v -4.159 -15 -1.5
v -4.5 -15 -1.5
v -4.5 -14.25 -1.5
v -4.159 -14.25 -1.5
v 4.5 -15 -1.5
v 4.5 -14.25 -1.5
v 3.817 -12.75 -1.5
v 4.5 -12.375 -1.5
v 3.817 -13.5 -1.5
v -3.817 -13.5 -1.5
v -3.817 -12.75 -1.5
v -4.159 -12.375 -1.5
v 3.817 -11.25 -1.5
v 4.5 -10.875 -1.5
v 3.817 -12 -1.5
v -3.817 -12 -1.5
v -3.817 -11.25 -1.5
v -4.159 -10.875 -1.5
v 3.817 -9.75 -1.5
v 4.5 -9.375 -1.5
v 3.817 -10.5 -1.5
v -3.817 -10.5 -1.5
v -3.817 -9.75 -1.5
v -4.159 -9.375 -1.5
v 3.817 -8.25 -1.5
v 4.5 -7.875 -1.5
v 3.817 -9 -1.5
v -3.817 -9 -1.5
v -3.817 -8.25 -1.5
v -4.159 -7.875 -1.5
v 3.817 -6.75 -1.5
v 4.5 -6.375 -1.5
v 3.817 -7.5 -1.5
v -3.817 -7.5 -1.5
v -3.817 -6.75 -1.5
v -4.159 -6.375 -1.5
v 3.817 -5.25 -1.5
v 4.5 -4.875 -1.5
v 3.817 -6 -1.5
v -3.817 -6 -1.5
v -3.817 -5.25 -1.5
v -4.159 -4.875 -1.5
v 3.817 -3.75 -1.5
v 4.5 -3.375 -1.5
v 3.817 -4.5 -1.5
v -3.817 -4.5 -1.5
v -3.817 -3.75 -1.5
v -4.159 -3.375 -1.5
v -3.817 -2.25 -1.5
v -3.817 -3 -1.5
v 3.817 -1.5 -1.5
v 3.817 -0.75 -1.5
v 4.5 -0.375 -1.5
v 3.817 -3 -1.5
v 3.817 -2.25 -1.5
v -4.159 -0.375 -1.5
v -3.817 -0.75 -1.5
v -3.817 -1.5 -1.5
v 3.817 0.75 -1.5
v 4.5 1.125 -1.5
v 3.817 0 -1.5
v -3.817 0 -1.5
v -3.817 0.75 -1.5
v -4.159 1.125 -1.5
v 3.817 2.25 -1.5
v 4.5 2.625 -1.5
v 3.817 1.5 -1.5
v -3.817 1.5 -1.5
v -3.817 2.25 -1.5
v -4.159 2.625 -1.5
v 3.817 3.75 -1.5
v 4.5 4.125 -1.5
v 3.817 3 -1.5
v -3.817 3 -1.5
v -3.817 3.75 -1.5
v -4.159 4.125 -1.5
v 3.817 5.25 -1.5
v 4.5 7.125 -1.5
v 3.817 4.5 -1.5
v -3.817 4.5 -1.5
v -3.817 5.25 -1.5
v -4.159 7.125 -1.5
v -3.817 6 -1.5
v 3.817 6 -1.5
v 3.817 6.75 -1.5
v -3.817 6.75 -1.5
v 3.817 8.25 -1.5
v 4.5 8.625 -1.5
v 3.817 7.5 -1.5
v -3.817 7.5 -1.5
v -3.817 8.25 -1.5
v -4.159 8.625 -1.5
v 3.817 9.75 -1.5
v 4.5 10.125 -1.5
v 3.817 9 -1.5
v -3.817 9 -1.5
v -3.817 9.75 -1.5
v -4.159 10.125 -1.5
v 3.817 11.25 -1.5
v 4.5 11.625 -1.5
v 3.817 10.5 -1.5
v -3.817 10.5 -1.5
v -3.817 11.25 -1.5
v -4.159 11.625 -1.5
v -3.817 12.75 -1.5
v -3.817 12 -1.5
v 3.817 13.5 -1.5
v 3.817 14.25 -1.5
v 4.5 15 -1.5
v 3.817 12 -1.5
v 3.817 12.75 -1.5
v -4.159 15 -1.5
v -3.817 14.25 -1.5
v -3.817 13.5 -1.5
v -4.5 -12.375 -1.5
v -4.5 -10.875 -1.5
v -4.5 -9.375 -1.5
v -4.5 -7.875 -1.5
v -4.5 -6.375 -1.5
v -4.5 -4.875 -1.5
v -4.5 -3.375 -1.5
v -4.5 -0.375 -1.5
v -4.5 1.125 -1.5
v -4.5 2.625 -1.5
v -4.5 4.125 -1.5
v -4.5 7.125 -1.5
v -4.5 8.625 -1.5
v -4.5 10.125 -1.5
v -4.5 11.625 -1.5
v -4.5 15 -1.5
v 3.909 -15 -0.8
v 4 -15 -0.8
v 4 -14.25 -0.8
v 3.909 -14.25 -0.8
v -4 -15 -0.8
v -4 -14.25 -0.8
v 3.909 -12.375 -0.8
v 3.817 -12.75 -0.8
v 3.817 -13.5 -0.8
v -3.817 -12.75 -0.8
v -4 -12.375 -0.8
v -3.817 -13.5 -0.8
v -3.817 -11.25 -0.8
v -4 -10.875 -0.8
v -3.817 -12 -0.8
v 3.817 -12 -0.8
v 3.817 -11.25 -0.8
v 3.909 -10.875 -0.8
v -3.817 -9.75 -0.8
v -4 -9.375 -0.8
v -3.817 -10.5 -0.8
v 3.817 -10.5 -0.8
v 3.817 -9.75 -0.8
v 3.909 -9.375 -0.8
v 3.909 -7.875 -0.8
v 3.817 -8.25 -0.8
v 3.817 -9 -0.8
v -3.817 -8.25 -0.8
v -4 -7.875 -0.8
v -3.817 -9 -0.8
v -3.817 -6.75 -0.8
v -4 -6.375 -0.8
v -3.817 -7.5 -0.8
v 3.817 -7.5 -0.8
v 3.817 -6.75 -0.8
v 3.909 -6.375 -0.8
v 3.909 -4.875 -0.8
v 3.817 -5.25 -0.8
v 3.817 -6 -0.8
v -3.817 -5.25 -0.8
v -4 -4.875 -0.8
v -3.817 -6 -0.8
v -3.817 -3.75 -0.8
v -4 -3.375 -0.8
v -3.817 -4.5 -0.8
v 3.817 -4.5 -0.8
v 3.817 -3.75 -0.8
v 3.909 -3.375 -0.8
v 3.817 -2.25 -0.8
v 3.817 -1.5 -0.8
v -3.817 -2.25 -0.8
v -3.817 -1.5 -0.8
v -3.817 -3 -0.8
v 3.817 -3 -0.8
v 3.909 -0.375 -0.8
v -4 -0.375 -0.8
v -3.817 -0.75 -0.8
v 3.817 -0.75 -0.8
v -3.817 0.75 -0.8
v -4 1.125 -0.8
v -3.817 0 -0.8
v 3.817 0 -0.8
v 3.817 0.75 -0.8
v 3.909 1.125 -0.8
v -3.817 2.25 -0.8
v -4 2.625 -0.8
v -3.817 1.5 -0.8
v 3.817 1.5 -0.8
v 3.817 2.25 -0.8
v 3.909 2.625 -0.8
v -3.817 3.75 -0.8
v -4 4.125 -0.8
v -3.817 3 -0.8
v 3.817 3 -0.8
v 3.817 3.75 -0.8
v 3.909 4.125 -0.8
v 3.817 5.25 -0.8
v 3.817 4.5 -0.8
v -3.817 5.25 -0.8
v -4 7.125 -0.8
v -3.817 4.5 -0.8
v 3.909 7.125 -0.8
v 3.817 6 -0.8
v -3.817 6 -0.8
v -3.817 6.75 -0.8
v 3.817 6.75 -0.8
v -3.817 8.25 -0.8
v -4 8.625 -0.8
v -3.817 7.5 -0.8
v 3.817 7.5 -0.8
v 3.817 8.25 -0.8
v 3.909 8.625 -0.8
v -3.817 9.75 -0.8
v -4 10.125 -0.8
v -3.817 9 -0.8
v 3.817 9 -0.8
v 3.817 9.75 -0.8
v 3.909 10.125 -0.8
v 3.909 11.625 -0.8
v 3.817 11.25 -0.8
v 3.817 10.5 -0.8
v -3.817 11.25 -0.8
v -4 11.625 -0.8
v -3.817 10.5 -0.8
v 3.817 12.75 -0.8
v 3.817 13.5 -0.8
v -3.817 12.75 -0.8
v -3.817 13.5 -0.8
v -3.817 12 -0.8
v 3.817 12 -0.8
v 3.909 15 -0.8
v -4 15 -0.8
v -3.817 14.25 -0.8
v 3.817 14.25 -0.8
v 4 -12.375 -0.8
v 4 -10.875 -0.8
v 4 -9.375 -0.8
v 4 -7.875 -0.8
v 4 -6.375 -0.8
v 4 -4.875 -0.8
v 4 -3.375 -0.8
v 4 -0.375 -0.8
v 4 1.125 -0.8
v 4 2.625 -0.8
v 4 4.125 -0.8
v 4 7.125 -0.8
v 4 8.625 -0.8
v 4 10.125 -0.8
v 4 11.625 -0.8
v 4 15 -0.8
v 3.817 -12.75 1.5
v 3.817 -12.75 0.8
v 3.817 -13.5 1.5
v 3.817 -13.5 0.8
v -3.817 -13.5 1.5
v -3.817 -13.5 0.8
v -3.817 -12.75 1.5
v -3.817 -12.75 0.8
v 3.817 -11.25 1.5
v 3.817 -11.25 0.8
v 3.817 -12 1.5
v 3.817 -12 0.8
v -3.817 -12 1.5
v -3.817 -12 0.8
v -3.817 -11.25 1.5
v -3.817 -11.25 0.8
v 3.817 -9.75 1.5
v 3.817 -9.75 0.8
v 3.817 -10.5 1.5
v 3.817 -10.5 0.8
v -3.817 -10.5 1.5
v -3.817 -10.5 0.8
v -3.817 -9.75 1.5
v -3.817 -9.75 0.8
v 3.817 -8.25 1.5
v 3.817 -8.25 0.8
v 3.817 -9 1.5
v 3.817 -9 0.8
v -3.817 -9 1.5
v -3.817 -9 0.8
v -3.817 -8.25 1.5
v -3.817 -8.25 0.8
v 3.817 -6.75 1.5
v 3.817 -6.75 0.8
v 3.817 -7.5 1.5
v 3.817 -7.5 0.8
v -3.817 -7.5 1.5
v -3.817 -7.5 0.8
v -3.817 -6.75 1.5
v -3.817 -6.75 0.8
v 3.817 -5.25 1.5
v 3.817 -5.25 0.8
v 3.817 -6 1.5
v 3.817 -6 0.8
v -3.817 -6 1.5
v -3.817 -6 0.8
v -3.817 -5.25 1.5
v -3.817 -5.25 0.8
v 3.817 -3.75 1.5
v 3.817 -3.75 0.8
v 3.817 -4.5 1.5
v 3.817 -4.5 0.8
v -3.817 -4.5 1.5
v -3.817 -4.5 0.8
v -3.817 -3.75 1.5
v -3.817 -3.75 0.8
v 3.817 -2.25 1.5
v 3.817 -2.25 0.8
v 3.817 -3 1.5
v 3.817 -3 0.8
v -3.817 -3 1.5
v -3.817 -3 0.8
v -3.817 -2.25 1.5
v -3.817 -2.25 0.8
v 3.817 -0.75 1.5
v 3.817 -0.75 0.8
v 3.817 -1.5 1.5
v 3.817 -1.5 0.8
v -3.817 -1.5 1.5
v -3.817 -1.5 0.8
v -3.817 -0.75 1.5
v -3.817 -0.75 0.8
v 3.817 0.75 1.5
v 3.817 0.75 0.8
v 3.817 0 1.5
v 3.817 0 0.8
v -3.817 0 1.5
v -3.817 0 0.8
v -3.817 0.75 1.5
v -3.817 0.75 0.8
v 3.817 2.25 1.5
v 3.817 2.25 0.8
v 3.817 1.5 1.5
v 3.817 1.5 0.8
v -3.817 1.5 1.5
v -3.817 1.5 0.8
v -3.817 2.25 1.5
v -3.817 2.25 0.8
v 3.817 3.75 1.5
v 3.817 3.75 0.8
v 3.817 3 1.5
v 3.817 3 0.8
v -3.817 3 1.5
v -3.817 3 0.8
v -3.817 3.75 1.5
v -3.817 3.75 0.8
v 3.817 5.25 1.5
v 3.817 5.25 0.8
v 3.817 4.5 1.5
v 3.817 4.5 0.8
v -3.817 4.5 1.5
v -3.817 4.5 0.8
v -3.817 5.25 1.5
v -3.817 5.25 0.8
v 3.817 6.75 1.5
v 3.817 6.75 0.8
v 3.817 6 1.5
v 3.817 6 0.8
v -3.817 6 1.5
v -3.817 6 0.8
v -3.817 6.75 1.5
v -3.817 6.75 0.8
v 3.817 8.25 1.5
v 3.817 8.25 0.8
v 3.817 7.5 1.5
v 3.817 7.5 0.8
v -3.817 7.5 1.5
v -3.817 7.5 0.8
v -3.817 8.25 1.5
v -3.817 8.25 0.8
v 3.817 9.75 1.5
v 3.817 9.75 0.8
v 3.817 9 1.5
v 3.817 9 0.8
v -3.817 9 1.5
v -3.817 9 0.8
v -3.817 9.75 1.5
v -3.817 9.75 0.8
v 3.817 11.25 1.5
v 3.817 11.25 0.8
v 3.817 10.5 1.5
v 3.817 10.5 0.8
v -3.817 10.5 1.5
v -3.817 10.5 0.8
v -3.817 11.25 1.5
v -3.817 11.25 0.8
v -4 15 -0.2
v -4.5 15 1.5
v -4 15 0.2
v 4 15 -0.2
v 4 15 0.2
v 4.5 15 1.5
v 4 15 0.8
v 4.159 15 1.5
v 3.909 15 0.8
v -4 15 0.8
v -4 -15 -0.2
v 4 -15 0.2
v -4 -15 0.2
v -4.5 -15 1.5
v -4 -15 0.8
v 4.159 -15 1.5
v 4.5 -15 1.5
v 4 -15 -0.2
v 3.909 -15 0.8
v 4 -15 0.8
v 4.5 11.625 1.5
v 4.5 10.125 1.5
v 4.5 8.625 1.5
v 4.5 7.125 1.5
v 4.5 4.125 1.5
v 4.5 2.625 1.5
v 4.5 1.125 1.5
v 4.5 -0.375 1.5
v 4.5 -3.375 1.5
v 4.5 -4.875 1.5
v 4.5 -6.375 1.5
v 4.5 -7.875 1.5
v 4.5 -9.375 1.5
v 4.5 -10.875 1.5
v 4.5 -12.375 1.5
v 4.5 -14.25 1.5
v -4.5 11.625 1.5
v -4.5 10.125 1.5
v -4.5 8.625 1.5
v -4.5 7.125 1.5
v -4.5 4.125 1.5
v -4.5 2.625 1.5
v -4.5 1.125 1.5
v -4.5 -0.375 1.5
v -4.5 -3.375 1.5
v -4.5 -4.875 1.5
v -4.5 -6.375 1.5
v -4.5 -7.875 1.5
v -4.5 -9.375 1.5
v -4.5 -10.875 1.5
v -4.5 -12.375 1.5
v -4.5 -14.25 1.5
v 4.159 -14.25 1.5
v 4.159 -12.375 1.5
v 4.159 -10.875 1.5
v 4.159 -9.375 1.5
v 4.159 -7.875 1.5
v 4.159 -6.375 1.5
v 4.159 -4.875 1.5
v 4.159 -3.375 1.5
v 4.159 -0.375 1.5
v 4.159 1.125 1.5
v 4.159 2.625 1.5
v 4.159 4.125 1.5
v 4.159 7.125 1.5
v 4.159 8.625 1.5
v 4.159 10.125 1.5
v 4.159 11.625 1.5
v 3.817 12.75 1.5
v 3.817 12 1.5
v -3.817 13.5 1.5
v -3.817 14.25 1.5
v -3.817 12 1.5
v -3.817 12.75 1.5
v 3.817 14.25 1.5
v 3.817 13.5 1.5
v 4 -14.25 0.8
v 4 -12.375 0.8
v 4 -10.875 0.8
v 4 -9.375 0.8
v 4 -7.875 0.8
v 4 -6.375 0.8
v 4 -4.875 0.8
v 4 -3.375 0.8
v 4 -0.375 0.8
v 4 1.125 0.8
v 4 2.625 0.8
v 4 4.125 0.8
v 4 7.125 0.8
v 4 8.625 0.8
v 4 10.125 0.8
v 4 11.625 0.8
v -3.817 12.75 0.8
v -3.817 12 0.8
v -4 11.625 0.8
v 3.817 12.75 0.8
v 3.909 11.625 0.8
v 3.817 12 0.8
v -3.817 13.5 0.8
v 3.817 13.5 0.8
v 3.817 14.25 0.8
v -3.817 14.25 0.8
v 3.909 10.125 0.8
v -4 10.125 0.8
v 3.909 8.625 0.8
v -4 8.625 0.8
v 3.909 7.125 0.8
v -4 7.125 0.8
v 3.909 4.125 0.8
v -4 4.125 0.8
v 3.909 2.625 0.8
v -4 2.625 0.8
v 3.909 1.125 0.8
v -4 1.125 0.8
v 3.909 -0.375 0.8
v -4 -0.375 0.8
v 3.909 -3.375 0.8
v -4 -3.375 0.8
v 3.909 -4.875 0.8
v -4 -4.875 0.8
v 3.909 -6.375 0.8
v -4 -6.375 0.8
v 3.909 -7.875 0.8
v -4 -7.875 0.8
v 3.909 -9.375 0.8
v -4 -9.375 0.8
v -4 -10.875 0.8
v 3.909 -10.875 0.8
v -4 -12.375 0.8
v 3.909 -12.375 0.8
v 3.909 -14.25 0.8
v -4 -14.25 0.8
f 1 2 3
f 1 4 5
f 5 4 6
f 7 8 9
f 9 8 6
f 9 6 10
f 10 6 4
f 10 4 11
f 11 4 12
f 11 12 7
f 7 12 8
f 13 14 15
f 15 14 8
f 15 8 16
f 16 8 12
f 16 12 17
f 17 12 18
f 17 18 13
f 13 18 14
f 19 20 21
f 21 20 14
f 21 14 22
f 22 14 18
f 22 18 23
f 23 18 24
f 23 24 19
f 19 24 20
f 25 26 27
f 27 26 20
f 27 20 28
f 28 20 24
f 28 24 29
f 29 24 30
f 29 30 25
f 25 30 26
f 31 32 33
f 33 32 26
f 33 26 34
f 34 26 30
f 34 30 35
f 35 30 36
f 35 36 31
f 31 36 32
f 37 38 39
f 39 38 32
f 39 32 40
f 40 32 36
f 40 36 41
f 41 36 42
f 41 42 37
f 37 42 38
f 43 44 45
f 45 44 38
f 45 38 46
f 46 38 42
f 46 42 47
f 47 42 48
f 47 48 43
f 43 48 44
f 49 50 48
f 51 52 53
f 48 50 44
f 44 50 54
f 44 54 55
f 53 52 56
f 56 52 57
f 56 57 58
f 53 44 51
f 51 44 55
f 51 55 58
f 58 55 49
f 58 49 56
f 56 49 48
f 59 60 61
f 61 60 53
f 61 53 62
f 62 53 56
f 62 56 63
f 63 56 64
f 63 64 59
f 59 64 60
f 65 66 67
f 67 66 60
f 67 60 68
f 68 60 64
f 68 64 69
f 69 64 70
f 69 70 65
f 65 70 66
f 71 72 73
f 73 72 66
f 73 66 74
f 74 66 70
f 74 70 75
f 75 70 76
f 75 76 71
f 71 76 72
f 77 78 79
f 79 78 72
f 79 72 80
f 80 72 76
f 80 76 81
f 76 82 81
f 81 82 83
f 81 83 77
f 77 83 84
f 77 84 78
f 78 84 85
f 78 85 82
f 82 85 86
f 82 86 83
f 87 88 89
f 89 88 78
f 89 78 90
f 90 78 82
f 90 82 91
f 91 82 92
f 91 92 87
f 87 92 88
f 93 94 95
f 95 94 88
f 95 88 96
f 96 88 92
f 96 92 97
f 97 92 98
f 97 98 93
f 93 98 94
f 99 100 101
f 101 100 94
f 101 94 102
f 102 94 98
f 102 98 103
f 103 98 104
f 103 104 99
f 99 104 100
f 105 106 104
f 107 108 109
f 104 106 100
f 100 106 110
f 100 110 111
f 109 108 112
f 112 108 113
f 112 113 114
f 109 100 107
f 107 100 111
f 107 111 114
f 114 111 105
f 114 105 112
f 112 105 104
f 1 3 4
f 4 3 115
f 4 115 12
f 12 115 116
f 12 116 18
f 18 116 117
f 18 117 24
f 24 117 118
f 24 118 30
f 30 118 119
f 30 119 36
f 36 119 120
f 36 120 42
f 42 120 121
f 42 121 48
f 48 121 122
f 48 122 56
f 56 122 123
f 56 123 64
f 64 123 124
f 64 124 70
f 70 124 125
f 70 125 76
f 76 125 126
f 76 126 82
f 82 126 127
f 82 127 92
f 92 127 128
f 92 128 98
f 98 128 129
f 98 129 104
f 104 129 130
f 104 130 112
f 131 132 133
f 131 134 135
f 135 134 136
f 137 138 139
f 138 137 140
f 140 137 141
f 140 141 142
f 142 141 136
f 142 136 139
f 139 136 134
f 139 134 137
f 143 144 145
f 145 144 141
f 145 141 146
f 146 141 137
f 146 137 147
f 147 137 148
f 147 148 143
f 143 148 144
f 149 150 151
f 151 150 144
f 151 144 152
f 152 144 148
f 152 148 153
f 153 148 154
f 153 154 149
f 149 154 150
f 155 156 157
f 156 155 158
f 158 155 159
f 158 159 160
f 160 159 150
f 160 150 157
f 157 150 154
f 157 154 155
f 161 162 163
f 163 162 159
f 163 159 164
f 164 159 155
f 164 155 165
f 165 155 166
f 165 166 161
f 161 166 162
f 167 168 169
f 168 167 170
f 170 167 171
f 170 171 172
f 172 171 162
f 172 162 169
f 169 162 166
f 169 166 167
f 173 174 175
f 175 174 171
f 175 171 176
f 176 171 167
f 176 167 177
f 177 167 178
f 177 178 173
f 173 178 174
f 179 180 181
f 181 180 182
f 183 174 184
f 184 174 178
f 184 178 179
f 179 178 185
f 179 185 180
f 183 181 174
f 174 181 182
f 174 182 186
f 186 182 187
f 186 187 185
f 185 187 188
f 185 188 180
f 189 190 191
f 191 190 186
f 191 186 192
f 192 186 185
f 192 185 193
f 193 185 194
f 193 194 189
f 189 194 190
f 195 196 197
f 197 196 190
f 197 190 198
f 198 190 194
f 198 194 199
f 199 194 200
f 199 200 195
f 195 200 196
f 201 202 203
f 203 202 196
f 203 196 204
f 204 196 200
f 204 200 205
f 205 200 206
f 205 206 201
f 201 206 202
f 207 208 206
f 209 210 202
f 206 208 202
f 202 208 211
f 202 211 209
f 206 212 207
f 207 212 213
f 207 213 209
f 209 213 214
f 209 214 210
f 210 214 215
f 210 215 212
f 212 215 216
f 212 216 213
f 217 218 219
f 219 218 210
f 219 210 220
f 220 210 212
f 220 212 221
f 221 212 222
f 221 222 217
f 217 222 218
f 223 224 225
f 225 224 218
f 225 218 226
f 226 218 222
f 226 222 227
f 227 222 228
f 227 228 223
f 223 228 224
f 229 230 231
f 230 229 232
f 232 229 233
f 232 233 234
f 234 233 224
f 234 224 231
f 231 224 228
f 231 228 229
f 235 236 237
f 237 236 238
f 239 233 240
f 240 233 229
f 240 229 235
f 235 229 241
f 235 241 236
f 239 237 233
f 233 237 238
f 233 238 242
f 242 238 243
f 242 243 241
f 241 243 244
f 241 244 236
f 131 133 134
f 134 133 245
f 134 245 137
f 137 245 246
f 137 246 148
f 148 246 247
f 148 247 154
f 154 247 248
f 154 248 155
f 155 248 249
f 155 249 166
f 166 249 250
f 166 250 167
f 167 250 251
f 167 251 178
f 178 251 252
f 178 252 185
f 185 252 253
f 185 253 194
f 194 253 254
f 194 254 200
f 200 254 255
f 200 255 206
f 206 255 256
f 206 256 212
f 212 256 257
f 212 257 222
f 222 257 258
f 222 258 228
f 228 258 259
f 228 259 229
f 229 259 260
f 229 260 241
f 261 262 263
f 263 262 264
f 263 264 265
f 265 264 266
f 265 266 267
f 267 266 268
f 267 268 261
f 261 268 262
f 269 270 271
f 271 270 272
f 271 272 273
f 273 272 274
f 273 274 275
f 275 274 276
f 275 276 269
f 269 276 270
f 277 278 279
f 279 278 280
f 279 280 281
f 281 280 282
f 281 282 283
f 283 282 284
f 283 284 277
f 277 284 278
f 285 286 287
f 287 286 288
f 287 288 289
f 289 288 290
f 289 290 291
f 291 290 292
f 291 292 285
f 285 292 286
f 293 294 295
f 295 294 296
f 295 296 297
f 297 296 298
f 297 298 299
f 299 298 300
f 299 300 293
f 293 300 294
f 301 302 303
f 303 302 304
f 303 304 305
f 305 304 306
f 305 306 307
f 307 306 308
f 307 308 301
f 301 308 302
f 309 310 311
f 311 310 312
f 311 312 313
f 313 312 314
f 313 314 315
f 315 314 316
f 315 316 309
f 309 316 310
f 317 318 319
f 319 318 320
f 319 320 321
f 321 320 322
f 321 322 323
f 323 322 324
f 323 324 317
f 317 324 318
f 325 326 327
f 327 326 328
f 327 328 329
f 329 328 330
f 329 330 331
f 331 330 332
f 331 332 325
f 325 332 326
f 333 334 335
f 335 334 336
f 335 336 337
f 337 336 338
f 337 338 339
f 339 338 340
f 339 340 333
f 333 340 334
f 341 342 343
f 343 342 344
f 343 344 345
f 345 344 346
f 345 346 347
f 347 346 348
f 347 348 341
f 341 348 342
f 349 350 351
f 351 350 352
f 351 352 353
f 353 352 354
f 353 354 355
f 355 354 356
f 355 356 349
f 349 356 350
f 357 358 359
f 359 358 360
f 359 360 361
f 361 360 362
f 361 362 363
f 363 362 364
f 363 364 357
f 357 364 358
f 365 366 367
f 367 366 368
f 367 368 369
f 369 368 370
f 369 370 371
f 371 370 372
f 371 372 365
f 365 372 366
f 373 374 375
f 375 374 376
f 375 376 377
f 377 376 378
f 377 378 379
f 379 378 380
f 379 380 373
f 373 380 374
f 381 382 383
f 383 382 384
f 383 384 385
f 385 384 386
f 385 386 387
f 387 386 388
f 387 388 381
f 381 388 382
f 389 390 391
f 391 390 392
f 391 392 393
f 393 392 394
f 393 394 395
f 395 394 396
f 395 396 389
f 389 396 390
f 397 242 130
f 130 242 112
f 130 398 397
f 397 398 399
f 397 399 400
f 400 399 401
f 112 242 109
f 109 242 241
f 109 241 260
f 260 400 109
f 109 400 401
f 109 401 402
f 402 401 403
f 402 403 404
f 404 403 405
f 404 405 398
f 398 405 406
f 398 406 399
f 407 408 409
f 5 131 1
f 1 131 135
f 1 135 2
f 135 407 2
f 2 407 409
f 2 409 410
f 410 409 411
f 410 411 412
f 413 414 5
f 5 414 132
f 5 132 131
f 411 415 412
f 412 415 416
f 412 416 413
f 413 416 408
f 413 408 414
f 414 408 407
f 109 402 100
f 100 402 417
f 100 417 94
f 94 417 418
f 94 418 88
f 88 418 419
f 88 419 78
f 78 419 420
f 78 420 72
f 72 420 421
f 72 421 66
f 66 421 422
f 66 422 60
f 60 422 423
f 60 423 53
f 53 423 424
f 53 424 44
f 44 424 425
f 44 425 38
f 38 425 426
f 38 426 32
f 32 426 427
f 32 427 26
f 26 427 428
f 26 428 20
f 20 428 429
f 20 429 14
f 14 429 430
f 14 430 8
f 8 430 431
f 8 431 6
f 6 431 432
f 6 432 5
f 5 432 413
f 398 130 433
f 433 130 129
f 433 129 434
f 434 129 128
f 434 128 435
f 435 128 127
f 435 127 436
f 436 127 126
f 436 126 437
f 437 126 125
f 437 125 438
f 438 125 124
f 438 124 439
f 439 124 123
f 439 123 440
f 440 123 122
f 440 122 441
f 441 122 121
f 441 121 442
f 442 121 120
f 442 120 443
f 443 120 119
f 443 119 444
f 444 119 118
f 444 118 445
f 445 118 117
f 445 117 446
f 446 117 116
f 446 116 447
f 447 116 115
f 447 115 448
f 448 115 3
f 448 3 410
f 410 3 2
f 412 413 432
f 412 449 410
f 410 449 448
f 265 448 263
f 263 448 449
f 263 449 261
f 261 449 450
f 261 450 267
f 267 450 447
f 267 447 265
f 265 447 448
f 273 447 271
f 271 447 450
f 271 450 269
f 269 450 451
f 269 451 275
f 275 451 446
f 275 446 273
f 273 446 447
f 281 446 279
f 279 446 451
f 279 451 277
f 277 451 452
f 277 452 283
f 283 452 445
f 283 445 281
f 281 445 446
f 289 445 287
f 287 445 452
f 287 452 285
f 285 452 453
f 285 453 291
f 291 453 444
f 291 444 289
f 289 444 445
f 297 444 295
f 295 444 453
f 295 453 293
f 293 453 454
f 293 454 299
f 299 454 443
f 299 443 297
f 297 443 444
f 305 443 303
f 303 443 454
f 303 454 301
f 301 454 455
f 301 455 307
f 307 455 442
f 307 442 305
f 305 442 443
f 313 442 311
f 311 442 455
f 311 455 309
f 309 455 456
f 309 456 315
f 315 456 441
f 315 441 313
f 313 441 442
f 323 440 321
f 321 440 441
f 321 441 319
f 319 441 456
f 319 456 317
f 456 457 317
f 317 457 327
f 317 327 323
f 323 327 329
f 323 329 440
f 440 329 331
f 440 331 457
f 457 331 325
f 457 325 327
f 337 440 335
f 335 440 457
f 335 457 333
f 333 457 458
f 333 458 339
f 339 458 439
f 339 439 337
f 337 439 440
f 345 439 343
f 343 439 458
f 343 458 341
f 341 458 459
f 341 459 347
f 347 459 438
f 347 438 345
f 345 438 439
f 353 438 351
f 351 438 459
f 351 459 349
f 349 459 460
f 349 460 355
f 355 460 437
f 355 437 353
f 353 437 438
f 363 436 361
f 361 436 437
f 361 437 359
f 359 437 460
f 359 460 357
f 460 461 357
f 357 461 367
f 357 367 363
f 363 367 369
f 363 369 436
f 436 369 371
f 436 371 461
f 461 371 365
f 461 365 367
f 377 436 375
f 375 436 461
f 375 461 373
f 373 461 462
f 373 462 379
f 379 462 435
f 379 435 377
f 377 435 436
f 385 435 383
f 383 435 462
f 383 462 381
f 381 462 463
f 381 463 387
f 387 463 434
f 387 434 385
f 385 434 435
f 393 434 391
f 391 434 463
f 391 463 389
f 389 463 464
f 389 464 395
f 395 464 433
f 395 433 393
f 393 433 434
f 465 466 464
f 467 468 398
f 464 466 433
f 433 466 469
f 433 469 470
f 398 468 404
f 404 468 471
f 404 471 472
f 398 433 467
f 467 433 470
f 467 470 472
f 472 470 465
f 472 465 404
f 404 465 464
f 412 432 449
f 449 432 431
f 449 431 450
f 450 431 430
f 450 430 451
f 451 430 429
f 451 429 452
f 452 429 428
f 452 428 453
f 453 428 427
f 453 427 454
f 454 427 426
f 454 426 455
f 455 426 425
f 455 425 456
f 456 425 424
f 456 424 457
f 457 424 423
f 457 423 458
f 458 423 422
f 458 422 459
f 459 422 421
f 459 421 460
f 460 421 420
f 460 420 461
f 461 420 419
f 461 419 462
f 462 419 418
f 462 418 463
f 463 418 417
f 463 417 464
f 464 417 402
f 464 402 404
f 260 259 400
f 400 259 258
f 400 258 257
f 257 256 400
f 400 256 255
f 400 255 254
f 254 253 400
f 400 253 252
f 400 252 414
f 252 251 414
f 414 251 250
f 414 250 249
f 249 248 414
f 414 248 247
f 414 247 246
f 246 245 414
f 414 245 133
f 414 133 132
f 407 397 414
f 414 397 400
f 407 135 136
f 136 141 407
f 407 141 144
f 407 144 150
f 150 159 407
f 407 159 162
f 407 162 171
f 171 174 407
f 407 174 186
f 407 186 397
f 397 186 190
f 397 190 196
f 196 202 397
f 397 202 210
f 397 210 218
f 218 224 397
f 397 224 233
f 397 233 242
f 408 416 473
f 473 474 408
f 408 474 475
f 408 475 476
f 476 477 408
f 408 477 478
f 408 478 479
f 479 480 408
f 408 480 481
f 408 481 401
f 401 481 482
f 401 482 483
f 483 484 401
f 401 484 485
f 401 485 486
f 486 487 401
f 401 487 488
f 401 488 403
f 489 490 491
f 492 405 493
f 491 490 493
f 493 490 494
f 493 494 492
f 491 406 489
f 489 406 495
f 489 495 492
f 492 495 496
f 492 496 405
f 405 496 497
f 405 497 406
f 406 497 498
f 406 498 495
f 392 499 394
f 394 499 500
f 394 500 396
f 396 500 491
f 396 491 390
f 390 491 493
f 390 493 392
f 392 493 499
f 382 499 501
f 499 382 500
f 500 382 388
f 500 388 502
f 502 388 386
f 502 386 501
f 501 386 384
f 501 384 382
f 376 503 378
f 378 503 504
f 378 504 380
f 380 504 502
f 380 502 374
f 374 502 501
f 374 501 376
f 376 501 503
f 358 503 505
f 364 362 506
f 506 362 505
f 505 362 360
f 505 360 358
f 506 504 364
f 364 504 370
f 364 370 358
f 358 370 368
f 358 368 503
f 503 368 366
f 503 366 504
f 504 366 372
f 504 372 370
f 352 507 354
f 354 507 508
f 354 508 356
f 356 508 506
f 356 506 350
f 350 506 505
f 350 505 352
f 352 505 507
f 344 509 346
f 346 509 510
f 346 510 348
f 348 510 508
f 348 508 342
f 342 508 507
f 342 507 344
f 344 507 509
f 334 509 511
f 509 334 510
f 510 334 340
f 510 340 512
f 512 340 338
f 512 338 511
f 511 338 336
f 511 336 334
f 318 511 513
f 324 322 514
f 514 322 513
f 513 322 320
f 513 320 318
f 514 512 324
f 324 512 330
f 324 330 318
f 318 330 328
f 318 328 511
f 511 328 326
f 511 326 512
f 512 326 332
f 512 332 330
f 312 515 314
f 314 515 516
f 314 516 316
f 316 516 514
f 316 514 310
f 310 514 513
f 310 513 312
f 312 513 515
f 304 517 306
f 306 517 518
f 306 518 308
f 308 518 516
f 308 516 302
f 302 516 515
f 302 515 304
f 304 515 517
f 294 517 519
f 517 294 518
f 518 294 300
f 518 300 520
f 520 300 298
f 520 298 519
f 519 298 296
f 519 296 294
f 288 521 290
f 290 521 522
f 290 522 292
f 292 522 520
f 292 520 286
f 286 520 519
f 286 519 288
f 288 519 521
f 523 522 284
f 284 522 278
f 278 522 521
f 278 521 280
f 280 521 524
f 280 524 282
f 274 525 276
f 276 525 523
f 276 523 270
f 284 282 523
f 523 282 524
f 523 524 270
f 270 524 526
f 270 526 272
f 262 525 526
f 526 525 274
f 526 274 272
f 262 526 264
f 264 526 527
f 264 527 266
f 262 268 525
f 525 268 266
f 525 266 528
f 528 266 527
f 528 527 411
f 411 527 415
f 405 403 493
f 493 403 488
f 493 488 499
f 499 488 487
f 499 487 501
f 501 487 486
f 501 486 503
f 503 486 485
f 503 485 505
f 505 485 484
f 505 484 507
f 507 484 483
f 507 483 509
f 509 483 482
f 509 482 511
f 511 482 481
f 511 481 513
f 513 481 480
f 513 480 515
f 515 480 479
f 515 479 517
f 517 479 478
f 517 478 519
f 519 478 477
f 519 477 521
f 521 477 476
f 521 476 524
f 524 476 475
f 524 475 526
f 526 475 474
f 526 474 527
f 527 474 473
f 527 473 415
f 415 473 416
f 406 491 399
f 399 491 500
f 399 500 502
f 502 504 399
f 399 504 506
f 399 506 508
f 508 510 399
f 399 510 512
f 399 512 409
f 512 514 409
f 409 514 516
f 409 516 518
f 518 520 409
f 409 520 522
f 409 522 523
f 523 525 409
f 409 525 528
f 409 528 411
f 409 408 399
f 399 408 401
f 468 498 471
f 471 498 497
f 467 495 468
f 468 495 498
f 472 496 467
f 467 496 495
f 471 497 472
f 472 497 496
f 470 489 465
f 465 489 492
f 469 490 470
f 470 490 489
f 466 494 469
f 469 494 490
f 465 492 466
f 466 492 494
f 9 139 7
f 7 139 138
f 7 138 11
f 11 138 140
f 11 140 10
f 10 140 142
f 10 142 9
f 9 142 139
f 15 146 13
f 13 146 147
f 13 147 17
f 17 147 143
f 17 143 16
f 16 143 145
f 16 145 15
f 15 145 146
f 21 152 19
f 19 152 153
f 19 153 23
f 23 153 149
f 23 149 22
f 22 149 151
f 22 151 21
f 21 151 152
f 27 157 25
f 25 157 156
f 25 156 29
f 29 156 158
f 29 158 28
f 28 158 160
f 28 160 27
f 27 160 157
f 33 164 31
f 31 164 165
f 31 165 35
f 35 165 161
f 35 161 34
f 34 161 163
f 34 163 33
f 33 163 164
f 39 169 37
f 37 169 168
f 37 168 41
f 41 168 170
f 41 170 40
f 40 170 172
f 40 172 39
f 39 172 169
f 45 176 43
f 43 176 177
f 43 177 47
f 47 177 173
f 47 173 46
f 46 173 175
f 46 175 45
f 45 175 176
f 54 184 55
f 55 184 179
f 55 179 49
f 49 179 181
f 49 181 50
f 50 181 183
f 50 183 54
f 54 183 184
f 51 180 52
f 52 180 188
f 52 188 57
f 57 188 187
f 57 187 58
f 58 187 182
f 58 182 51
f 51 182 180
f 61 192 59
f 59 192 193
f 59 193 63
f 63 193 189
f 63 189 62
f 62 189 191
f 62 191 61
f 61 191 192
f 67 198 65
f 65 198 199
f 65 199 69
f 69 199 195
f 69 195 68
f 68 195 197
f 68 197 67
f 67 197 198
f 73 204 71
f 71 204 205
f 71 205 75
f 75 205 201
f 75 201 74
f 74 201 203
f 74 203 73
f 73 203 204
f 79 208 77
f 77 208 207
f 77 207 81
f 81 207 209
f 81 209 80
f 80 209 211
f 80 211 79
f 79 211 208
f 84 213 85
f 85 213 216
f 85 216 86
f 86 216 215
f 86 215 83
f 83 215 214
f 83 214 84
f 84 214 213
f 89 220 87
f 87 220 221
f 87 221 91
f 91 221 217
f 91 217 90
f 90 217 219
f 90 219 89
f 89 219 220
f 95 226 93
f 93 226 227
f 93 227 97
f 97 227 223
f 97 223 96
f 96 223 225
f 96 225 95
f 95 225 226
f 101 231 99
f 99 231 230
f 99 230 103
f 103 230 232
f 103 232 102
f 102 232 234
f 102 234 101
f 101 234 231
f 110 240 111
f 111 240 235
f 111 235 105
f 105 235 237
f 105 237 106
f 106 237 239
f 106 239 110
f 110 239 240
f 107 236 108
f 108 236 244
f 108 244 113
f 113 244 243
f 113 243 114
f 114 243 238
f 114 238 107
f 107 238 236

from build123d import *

# Parameters (mm, degrees)
SKETCH1_W                = 9
SKETCH1_H                = 3
BOSS_EXTRUDE1_DEPTH      = 15
CUT_EXTRUDE1_START       = -31
SKETCH2_W                = 8
SKETCH2_H                = 0.6
CUT_EXTRUDE1_DEPTH       = 32
SKETCH3_W                = 7.634272068
SKETCH3_H                = 0.75
CUT_EXTRUDE2_DEPTH       = 0.7
LPATTERN1_COUNT          = 19
LPATTERN1_PITCH          = 1.5
MIRROR2_COPY_1_SKETCH_W  = 7.634272068
MIRROR2_COPY_1_SKETCH_H  = 0.75
MIRROR2_COPY_1_DEPTH     = 0.7
MIRROR2_COPY_2_SKETCH_W  = 7.634272068
MIRROR2_COPY_2_SKETCH_H  = 0.75
MIRROR2_COPY_2_DEPTH     = 0.7
MIRROR2_COPY_3_SKETCH_W  = 7.634272068
MIRROR2_COPY_3_SKETCH_H  = 0.75
MIRROR2_COPY_3_DEPTH     = 0.7
MIRROR2_COPY_4_SKETCH_W  = 7.634272068
MIRROR2_COPY_4_SKETCH_H  = 0.75
MIRROR2_COPY_4_DEPTH     = 0.7
MIRROR2_COPY_5_SKETCH_W  = 7.634272068
MIRROR2_COPY_5_SKETCH_H  = 0.75
MIRROR2_COPY_5_DEPTH     = 0.7
MIRROR2_COPY_6_SKETCH_W  = 7.634272068
MIRROR2_COPY_6_SKETCH_H  = 0.75
MIRROR2_COPY_6_DEPTH     = 0.7
MIRROR2_COPY_7_SKETCH_W  = 7.634272068
MIRROR2_COPY_7_SKETCH_H  = 0.75
MIRROR2_COPY_7_DEPTH     = 0.7
MIRROR2_COPY_8_SKETCH_W  = 7.634272068
MIRROR2_COPY_8_SKETCH_H  = 0.75
MIRROR2_COPY_8_DEPTH     = 0.7
MIRROR2_COPY_9_SKETCH_W  = 7.634272068
MIRROR2_COPY_9_SKETCH_H  = 0.75
MIRROR2_COPY_9_DEPTH     = 0.7
MIRROR2_COPY_10_SKETCH_W = 7.634272068
MIRROR2_COPY_10_SKETCH_H = 0.75
MIRROR2_COPY_10_DEPTH    = 0.7
MIRROR2_COPY_11_SKETCH_W = 7.634272068
MIRROR2_COPY_11_SKETCH_H = 0.75
MIRROR2_COPY_11_DEPTH    = 0.7
MIRROR2_COPY_12_SKETCH_W = 7.634272068
MIRROR2_COPY_12_SKETCH_H = 0.75
MIRROR2_COPY_12_DEPTH    = 0.7
MIRROR2_COPY_13_SKETCH_W = 7.634272068
MIRROR2_COPY_13_SKETCH_H = 0.75
MIRROR2_COPY_13_DEPTH    = 0.7
MIRROR2_COPY_14_SKETCH_W = 7.634272068
MIRROR2_COPY_14_SKETCH_H = 0.75
MIRROR2_COPY_14_DEPTH    = 0.7
MIRROR2_COPY_15_SKETCH_W = 7.634272068
MIRROR2_COPY_15_SKETCH_H = 0.75
MIRROR2_COPY_15_DEPTH    = 0.7
MIRROR2_COPY_16_SKETCH_W = 7.634272068
MIRROR2_COPY_16_SKETCH_H = 0.75
MIRROR2_COPY_16_DEPTH    = 0.7
MIRROR2_COPY_17_SKETCH_W = 7.634272068
MIRROR2_COPY_17_SKETCH_H = 0.75
MIRROR2_COPY_17_DEPTH    = 0.7
MIRROR2_COPY_18_SKETCH_W = 7.634272068
MIRROR2_COPY_18_SKETCH_H = 0.75
MIRROR2_COPY_18_DEPTH    = 0.7


with BuildPart() as part:
    # Sketch1 → Boss-Extrude1 (new body, symmetric)
    with BuildSketch(Plane(origin=(0, 0, 0), x_dir=(1, 0, 0), z_dir=(0, 1, 0))):
        Rectangle(SKETCH1_W, SKETCH1_H)
    extrude(amount=BOSS_EXTRUDE1_DEPTH, both=True)

    # Sketch2 → Cut-Extrude1 (cut)
    with BuildSketch(Plane(origin=(0, 15, 0), x_dir=(1, 0, 0), z_dir=(0, 1, 0)).offset(CUT_EXTRUDE1_START)):
        with Locations((0, 0.5)):
            Rectangle(SKETCH2_W, SKETCH2_H)
    cut_extrude1 = extrude(amount=CUT_EXTRUDE1_DEPTH, mode=Mode.SUBTRACT)

    # Mirror1: Cut-Extrude1 across plane
    add(cut_extrude1.mirror(Plane.XY), mode=Mode.SUBTRACT)

    # Sketch3 → Cut-Extrude2 (cut)
    with BuildSketch(Plane.XY.offset(1.5)):
        with Locations((0, 13.875)):
            Rectangle(SKETCH3_W, SKETCH3_H)
    cut_extrude2 = extrude(amount=-CUT_EXTRUDE2_DEPTH, mode=Mode.SUBTRACT)

    # LPattern1: Cut-Extrude2 ×19
    with Locations(*[(0, -i * LPATTERN1_PITCH, 0) for i in range(1, LPATTERN1_COUNT)]):
        add(cut_extrude2, mode=Mode.SUBTRACT)

    # Mirror2: Cut-Extrude2 across plane
    add(cut_extrude2.mirror(Plane.XY), mode=Mode.SUBTRACT)

    # Mirror2 copy 1 sketch → Mirror2 copy 1 (cut)
    with BuildSketch(Plane(origin=(0, -1.5, -1.5), x_dir=(1, 0, 0), z_dir=(0, 0, -1))):
        with Locations((0, -13.875)):
            Rectangle(MIRROR2_COPY_1_SKETCH_W, MIRROR2_COPY_1_SKETCH_H)
    extrude(amount=-MIRROR2_COPY_1_DEPTH, mode=Mode.SUBTRACT)

    # Mirror2 copy 2 sketch → Mirror2 copy 2 (cut)
    with BuildSketch(Plane(origin=(0, -3, -1.5), x_dir=(1, 0, 0), z_dir=(0, 0, -1))):
        with Locations((0, -13.875)):
            Rectangle(MIRROR2_COPY_2_SKETCH_W, MIRROR2_COPY_2_SKETCH_H)
    extrude(amount=-MIRROR2_COPY_2_DEPTH, mode=Mode.SUBTRACT)

    # Mirror2 copy 3 sketch → Mirror2 copy 3 (cut)
    with BuildSketch(Plane(origin=(0, -4.5, -1.5), x_dir=(1, 0, 0), z_dir=(0, 0, -1))):
        with Locations((0, -13.875)):
            Rectangle(MIRROR2_COPY_3_SKETCH_W, MIRROR2_COPY_3_SKETCH_H)
    extrude(amount=-MIRROR2_COPY_3_DEPTH, mode=Mode.SUBTRACT)

    # Mirror2 copy 4 sketch → Mirror2 copy 4 (cut)
    with BuildSketch(Plane(origin=(0, -6, -1.5), x_dir=(1, 0, 0), z_dir=(0, 0, -1))):
        with Locations((0, -13.875)):
            Rectangle(MIRROR2_COPY_4_SKETCH_W, MIRROR2_COPY_4_SKETCH_H)
    extrude(amount=-MIRROR2_COPY_4_DEPTH, mode=Mode.SUBTRACT)

    # Mirror2 copy 5 sketch → Mirror2 copy 5 (cut)
    with BuildSketch(Plane(origin=(0, -7.5, -1.5), x_dir=(1, 0, 0), z_dir=(0, 0, -1))):
        with Locations((0, -13.875)):
            Rectangle(MIRROR2_COPY_5_SKETCH_W, MIRROR2_COPY_5_SKETCH_H)
    extrude(amount=-MIRROR2_COPY_5_DEPTH, mode=Mode.SUBTRACT)

    # Mirror2 copy 6 sketch → Mirror2 copy 6 (cut)
    with BuildSketch(Plane(origin=(0, -9, -1.5), x_dir=(1, 0, 0), z_dir=(0, 0, -1))):
        with Locations((0, -13.875)):
            Rectangle(MIRROR2_COPY_6_SKETCH_W, MIRROR2_COPY_6_SKETCH_H)
    extrude(amount=-MIRROR2_COPY_6_DEPTH, mode=Mode.SUBTRACT)

    # Mirror2 copy 7 sketch → Mirror2 copy 7 (cut)
    with BuildSketch(Plane(origin=(0, -10.5, -1.5), x_dir=(1, 0, 0), z_dir=(0, 0, -1))):
        with Locations((0, -13.875)):
            Rectangle(MIRROR2_COPY_7_SKETCH_W, MIRROR2_COPY_7_SKETCH_H)
    extrude(amount=-MIRROR2_COPY_7_DEPTH, mode=Mode.SUBTRACT)

    # Mirror2 copy 8 sketch → Mirror2 copy 8 (cut)
    with BuildSketch(Plane(origin=(0, -12, -1.5), x_dir=(1, 0, 0), z_dir=(0, 0, -1))):
        with Locations((0, -13.875)):
            Rectangle(MIRROR2_COPY_8_SKETCH_W, MIRROR2_COPY_8_SKETCH_H)
    extrude(amount=-MIRROR2_COPY_8_DEPTH, mode=Mode.SUBTRACT)

    # Mirror2 copy 9 sketch → Mirror2 copy 9 (cut)
    with BuildSketch(Plane(origin=(0, -13.5, -1.5), x_dir=(1, 0, 0), z_dir=(0, 0, -1))):
        with Locations((0, -13.875)):
            Rectangle(MIRROR2_COPY_9_SKETCH_W, MIRROR2_COPY_9_SKETCH_H)
    extrude(amount=-MIRROR2_COPY_9_DEPTH, mode=Mode.SUBTRACT)

    # Mirror2 copy 10 sketch → Mirror2 copy 10 (cut)
    with BuildSketch(Plane(origin=(0, -15, -1.5), x_dir=(1, 0, 0), z_dir=(0, 0, -1))):
        with Locations((0, -13.875)):
            Rectangle(MIRROR2_COPY_10_SKETCH_W, MIRROR2_COPY_10_SKETCH_H)
    extrude(amount=-MIRROR2_COPY_10_DEPTH, mode=Mode.SUBTRACT)

    # Mirror2 copy 11 sketch → Mirror2 copy 11 (cut)
    with BuildSketch(Plane(origin=(0, -16.5, -1.5), x_dir=(1, 0, 0), z_dir=(0, 0, -1))):
        with Locations((0, -13.875)):
            Rectangle(MIRROR2_COPY_11_SKETCH_W, MIRROR2_COPY_11_SKETCH_H)
    extrude(amount=-MIRROR2_COPY_11_DEPTH, mode=Mode.SUBTRACT)

    # Mirror2 copy 12 sketch → Mirror2 copy 12 (cut)
    with BuildSketch(Plane(origin=(0, -18, -1.5), x_dir=(1, 0, 0), z_dir=(0, 0, -1))):
        with Locations((0, -13.875)):
            Rectangle(MIRROR2_COPY_12_SKETCH_W, MIRROR2_COPY_12_SKETCH_H)
    extrude(amount=-MIRROR2_COPY_12_DEPTH, mode=Mode.SUBTRACT)

    # Mirror2 copy 13 sketch → Mirror2 copy 13 (cut)
    with BuildSketch(Plane(origin=(0, -19.5, -1.5), x_dir=(1, 0, 0), z_dir=(0, 0, -1))):
        with Locations((0, -13.875)):
            Rectangle(MIRROR2_COPY_13_SKETCH_W, MIRROR2_COPY_13_SKETCH_H)
    extrude(amount=-MIRROR2_COPY_13_DEPTH, mode=Mode.SUBTRACT)

    # Mirror2 copy 14 sketch → Mirror2 copy 14 (cut)
    with BuildSketch(Plane(origin=(0, -21, -1.5), x_dir=(1, 0, 0), z_dir=(0, 0, -1))):
        with Locations((0, -13.875)):
            Rectangle(MIRROR2_COPY_14_SKETCH_W, MIRROR2_COPY_14_SKETCH_H)
    extrude(amount=-MIRROR2_COPY_14_DEPTH, mode=Mode.SUBTRACT)

    # Mirror2 copy 15 sketch → Mirror2 copy 15 (cut)
    with BuildSketch(Plane(origin=(0, -22.5, -1.5), x_dir=(1, 0, 0), z_dir=(0, 0, -1))):
        with Locations((0, -13.875)):
            Rectangle(MIRROR2_COPY_15_SKETCH_W, MIRROR2_COPY_15_SKETCH_H)
    extrude(amount=-MIRROR2_COPY_15_DEPTH, mode=Mode.SUBTRACT)

    # Mirror2 copy 16 sketch → Mirror2 copy 16 (cut)
    with BuildSketch(Plane(origin=(0, -24, -1.5), x_dir=(1, 0, 0), z_dir=(0, 0, -1))):
        with Locations((0, -13.875)):
            Rectangle(MIRROR2_COPY_16_SKETCH_W, MIRROR2_COPY_16_SKETCH_H)
    extrude(amount=-MIRROR2_COPY_16_DEPTH, mode=Mode.SUBTRACT)

    # Mirror2 copy 17 sketch → Mirror2 copy 17 (cut)
    with BuildSketch(Plane(origin=(0, -25.5, -1.5), x_dir=(1, 0, 0), z_dir=(0, 0, -1))):
        with Locations((0, -13.875)):
            Rectangle(MIRROR2_COPY_17_SKETCH_W, MIRROR2_COPY_17_SKETCH_H)
    extrude(amount=-MIRROR2_COPY_17_DEPTH, mode=Mode.SUBTRACT)

    # Mirror2 copy 18 sketch → Mirror2 copy 18 (cut)
    with BuildSketch(Plane(origin=(0, -27, -1.5), x_dir=(1, 0, 0), z_dir=(0, 0, -1))):
        with Locations((0, -13.875)):
            Rectangle(MIRROR2_COPY_18_SKETCH_W, MIRROR2_COPY_18_SKETCH_H)
    extrude(amount=-MIRROR2_COPY_18_DEPTH, mode=Mode.SUBTRACT)


solid = part.part
